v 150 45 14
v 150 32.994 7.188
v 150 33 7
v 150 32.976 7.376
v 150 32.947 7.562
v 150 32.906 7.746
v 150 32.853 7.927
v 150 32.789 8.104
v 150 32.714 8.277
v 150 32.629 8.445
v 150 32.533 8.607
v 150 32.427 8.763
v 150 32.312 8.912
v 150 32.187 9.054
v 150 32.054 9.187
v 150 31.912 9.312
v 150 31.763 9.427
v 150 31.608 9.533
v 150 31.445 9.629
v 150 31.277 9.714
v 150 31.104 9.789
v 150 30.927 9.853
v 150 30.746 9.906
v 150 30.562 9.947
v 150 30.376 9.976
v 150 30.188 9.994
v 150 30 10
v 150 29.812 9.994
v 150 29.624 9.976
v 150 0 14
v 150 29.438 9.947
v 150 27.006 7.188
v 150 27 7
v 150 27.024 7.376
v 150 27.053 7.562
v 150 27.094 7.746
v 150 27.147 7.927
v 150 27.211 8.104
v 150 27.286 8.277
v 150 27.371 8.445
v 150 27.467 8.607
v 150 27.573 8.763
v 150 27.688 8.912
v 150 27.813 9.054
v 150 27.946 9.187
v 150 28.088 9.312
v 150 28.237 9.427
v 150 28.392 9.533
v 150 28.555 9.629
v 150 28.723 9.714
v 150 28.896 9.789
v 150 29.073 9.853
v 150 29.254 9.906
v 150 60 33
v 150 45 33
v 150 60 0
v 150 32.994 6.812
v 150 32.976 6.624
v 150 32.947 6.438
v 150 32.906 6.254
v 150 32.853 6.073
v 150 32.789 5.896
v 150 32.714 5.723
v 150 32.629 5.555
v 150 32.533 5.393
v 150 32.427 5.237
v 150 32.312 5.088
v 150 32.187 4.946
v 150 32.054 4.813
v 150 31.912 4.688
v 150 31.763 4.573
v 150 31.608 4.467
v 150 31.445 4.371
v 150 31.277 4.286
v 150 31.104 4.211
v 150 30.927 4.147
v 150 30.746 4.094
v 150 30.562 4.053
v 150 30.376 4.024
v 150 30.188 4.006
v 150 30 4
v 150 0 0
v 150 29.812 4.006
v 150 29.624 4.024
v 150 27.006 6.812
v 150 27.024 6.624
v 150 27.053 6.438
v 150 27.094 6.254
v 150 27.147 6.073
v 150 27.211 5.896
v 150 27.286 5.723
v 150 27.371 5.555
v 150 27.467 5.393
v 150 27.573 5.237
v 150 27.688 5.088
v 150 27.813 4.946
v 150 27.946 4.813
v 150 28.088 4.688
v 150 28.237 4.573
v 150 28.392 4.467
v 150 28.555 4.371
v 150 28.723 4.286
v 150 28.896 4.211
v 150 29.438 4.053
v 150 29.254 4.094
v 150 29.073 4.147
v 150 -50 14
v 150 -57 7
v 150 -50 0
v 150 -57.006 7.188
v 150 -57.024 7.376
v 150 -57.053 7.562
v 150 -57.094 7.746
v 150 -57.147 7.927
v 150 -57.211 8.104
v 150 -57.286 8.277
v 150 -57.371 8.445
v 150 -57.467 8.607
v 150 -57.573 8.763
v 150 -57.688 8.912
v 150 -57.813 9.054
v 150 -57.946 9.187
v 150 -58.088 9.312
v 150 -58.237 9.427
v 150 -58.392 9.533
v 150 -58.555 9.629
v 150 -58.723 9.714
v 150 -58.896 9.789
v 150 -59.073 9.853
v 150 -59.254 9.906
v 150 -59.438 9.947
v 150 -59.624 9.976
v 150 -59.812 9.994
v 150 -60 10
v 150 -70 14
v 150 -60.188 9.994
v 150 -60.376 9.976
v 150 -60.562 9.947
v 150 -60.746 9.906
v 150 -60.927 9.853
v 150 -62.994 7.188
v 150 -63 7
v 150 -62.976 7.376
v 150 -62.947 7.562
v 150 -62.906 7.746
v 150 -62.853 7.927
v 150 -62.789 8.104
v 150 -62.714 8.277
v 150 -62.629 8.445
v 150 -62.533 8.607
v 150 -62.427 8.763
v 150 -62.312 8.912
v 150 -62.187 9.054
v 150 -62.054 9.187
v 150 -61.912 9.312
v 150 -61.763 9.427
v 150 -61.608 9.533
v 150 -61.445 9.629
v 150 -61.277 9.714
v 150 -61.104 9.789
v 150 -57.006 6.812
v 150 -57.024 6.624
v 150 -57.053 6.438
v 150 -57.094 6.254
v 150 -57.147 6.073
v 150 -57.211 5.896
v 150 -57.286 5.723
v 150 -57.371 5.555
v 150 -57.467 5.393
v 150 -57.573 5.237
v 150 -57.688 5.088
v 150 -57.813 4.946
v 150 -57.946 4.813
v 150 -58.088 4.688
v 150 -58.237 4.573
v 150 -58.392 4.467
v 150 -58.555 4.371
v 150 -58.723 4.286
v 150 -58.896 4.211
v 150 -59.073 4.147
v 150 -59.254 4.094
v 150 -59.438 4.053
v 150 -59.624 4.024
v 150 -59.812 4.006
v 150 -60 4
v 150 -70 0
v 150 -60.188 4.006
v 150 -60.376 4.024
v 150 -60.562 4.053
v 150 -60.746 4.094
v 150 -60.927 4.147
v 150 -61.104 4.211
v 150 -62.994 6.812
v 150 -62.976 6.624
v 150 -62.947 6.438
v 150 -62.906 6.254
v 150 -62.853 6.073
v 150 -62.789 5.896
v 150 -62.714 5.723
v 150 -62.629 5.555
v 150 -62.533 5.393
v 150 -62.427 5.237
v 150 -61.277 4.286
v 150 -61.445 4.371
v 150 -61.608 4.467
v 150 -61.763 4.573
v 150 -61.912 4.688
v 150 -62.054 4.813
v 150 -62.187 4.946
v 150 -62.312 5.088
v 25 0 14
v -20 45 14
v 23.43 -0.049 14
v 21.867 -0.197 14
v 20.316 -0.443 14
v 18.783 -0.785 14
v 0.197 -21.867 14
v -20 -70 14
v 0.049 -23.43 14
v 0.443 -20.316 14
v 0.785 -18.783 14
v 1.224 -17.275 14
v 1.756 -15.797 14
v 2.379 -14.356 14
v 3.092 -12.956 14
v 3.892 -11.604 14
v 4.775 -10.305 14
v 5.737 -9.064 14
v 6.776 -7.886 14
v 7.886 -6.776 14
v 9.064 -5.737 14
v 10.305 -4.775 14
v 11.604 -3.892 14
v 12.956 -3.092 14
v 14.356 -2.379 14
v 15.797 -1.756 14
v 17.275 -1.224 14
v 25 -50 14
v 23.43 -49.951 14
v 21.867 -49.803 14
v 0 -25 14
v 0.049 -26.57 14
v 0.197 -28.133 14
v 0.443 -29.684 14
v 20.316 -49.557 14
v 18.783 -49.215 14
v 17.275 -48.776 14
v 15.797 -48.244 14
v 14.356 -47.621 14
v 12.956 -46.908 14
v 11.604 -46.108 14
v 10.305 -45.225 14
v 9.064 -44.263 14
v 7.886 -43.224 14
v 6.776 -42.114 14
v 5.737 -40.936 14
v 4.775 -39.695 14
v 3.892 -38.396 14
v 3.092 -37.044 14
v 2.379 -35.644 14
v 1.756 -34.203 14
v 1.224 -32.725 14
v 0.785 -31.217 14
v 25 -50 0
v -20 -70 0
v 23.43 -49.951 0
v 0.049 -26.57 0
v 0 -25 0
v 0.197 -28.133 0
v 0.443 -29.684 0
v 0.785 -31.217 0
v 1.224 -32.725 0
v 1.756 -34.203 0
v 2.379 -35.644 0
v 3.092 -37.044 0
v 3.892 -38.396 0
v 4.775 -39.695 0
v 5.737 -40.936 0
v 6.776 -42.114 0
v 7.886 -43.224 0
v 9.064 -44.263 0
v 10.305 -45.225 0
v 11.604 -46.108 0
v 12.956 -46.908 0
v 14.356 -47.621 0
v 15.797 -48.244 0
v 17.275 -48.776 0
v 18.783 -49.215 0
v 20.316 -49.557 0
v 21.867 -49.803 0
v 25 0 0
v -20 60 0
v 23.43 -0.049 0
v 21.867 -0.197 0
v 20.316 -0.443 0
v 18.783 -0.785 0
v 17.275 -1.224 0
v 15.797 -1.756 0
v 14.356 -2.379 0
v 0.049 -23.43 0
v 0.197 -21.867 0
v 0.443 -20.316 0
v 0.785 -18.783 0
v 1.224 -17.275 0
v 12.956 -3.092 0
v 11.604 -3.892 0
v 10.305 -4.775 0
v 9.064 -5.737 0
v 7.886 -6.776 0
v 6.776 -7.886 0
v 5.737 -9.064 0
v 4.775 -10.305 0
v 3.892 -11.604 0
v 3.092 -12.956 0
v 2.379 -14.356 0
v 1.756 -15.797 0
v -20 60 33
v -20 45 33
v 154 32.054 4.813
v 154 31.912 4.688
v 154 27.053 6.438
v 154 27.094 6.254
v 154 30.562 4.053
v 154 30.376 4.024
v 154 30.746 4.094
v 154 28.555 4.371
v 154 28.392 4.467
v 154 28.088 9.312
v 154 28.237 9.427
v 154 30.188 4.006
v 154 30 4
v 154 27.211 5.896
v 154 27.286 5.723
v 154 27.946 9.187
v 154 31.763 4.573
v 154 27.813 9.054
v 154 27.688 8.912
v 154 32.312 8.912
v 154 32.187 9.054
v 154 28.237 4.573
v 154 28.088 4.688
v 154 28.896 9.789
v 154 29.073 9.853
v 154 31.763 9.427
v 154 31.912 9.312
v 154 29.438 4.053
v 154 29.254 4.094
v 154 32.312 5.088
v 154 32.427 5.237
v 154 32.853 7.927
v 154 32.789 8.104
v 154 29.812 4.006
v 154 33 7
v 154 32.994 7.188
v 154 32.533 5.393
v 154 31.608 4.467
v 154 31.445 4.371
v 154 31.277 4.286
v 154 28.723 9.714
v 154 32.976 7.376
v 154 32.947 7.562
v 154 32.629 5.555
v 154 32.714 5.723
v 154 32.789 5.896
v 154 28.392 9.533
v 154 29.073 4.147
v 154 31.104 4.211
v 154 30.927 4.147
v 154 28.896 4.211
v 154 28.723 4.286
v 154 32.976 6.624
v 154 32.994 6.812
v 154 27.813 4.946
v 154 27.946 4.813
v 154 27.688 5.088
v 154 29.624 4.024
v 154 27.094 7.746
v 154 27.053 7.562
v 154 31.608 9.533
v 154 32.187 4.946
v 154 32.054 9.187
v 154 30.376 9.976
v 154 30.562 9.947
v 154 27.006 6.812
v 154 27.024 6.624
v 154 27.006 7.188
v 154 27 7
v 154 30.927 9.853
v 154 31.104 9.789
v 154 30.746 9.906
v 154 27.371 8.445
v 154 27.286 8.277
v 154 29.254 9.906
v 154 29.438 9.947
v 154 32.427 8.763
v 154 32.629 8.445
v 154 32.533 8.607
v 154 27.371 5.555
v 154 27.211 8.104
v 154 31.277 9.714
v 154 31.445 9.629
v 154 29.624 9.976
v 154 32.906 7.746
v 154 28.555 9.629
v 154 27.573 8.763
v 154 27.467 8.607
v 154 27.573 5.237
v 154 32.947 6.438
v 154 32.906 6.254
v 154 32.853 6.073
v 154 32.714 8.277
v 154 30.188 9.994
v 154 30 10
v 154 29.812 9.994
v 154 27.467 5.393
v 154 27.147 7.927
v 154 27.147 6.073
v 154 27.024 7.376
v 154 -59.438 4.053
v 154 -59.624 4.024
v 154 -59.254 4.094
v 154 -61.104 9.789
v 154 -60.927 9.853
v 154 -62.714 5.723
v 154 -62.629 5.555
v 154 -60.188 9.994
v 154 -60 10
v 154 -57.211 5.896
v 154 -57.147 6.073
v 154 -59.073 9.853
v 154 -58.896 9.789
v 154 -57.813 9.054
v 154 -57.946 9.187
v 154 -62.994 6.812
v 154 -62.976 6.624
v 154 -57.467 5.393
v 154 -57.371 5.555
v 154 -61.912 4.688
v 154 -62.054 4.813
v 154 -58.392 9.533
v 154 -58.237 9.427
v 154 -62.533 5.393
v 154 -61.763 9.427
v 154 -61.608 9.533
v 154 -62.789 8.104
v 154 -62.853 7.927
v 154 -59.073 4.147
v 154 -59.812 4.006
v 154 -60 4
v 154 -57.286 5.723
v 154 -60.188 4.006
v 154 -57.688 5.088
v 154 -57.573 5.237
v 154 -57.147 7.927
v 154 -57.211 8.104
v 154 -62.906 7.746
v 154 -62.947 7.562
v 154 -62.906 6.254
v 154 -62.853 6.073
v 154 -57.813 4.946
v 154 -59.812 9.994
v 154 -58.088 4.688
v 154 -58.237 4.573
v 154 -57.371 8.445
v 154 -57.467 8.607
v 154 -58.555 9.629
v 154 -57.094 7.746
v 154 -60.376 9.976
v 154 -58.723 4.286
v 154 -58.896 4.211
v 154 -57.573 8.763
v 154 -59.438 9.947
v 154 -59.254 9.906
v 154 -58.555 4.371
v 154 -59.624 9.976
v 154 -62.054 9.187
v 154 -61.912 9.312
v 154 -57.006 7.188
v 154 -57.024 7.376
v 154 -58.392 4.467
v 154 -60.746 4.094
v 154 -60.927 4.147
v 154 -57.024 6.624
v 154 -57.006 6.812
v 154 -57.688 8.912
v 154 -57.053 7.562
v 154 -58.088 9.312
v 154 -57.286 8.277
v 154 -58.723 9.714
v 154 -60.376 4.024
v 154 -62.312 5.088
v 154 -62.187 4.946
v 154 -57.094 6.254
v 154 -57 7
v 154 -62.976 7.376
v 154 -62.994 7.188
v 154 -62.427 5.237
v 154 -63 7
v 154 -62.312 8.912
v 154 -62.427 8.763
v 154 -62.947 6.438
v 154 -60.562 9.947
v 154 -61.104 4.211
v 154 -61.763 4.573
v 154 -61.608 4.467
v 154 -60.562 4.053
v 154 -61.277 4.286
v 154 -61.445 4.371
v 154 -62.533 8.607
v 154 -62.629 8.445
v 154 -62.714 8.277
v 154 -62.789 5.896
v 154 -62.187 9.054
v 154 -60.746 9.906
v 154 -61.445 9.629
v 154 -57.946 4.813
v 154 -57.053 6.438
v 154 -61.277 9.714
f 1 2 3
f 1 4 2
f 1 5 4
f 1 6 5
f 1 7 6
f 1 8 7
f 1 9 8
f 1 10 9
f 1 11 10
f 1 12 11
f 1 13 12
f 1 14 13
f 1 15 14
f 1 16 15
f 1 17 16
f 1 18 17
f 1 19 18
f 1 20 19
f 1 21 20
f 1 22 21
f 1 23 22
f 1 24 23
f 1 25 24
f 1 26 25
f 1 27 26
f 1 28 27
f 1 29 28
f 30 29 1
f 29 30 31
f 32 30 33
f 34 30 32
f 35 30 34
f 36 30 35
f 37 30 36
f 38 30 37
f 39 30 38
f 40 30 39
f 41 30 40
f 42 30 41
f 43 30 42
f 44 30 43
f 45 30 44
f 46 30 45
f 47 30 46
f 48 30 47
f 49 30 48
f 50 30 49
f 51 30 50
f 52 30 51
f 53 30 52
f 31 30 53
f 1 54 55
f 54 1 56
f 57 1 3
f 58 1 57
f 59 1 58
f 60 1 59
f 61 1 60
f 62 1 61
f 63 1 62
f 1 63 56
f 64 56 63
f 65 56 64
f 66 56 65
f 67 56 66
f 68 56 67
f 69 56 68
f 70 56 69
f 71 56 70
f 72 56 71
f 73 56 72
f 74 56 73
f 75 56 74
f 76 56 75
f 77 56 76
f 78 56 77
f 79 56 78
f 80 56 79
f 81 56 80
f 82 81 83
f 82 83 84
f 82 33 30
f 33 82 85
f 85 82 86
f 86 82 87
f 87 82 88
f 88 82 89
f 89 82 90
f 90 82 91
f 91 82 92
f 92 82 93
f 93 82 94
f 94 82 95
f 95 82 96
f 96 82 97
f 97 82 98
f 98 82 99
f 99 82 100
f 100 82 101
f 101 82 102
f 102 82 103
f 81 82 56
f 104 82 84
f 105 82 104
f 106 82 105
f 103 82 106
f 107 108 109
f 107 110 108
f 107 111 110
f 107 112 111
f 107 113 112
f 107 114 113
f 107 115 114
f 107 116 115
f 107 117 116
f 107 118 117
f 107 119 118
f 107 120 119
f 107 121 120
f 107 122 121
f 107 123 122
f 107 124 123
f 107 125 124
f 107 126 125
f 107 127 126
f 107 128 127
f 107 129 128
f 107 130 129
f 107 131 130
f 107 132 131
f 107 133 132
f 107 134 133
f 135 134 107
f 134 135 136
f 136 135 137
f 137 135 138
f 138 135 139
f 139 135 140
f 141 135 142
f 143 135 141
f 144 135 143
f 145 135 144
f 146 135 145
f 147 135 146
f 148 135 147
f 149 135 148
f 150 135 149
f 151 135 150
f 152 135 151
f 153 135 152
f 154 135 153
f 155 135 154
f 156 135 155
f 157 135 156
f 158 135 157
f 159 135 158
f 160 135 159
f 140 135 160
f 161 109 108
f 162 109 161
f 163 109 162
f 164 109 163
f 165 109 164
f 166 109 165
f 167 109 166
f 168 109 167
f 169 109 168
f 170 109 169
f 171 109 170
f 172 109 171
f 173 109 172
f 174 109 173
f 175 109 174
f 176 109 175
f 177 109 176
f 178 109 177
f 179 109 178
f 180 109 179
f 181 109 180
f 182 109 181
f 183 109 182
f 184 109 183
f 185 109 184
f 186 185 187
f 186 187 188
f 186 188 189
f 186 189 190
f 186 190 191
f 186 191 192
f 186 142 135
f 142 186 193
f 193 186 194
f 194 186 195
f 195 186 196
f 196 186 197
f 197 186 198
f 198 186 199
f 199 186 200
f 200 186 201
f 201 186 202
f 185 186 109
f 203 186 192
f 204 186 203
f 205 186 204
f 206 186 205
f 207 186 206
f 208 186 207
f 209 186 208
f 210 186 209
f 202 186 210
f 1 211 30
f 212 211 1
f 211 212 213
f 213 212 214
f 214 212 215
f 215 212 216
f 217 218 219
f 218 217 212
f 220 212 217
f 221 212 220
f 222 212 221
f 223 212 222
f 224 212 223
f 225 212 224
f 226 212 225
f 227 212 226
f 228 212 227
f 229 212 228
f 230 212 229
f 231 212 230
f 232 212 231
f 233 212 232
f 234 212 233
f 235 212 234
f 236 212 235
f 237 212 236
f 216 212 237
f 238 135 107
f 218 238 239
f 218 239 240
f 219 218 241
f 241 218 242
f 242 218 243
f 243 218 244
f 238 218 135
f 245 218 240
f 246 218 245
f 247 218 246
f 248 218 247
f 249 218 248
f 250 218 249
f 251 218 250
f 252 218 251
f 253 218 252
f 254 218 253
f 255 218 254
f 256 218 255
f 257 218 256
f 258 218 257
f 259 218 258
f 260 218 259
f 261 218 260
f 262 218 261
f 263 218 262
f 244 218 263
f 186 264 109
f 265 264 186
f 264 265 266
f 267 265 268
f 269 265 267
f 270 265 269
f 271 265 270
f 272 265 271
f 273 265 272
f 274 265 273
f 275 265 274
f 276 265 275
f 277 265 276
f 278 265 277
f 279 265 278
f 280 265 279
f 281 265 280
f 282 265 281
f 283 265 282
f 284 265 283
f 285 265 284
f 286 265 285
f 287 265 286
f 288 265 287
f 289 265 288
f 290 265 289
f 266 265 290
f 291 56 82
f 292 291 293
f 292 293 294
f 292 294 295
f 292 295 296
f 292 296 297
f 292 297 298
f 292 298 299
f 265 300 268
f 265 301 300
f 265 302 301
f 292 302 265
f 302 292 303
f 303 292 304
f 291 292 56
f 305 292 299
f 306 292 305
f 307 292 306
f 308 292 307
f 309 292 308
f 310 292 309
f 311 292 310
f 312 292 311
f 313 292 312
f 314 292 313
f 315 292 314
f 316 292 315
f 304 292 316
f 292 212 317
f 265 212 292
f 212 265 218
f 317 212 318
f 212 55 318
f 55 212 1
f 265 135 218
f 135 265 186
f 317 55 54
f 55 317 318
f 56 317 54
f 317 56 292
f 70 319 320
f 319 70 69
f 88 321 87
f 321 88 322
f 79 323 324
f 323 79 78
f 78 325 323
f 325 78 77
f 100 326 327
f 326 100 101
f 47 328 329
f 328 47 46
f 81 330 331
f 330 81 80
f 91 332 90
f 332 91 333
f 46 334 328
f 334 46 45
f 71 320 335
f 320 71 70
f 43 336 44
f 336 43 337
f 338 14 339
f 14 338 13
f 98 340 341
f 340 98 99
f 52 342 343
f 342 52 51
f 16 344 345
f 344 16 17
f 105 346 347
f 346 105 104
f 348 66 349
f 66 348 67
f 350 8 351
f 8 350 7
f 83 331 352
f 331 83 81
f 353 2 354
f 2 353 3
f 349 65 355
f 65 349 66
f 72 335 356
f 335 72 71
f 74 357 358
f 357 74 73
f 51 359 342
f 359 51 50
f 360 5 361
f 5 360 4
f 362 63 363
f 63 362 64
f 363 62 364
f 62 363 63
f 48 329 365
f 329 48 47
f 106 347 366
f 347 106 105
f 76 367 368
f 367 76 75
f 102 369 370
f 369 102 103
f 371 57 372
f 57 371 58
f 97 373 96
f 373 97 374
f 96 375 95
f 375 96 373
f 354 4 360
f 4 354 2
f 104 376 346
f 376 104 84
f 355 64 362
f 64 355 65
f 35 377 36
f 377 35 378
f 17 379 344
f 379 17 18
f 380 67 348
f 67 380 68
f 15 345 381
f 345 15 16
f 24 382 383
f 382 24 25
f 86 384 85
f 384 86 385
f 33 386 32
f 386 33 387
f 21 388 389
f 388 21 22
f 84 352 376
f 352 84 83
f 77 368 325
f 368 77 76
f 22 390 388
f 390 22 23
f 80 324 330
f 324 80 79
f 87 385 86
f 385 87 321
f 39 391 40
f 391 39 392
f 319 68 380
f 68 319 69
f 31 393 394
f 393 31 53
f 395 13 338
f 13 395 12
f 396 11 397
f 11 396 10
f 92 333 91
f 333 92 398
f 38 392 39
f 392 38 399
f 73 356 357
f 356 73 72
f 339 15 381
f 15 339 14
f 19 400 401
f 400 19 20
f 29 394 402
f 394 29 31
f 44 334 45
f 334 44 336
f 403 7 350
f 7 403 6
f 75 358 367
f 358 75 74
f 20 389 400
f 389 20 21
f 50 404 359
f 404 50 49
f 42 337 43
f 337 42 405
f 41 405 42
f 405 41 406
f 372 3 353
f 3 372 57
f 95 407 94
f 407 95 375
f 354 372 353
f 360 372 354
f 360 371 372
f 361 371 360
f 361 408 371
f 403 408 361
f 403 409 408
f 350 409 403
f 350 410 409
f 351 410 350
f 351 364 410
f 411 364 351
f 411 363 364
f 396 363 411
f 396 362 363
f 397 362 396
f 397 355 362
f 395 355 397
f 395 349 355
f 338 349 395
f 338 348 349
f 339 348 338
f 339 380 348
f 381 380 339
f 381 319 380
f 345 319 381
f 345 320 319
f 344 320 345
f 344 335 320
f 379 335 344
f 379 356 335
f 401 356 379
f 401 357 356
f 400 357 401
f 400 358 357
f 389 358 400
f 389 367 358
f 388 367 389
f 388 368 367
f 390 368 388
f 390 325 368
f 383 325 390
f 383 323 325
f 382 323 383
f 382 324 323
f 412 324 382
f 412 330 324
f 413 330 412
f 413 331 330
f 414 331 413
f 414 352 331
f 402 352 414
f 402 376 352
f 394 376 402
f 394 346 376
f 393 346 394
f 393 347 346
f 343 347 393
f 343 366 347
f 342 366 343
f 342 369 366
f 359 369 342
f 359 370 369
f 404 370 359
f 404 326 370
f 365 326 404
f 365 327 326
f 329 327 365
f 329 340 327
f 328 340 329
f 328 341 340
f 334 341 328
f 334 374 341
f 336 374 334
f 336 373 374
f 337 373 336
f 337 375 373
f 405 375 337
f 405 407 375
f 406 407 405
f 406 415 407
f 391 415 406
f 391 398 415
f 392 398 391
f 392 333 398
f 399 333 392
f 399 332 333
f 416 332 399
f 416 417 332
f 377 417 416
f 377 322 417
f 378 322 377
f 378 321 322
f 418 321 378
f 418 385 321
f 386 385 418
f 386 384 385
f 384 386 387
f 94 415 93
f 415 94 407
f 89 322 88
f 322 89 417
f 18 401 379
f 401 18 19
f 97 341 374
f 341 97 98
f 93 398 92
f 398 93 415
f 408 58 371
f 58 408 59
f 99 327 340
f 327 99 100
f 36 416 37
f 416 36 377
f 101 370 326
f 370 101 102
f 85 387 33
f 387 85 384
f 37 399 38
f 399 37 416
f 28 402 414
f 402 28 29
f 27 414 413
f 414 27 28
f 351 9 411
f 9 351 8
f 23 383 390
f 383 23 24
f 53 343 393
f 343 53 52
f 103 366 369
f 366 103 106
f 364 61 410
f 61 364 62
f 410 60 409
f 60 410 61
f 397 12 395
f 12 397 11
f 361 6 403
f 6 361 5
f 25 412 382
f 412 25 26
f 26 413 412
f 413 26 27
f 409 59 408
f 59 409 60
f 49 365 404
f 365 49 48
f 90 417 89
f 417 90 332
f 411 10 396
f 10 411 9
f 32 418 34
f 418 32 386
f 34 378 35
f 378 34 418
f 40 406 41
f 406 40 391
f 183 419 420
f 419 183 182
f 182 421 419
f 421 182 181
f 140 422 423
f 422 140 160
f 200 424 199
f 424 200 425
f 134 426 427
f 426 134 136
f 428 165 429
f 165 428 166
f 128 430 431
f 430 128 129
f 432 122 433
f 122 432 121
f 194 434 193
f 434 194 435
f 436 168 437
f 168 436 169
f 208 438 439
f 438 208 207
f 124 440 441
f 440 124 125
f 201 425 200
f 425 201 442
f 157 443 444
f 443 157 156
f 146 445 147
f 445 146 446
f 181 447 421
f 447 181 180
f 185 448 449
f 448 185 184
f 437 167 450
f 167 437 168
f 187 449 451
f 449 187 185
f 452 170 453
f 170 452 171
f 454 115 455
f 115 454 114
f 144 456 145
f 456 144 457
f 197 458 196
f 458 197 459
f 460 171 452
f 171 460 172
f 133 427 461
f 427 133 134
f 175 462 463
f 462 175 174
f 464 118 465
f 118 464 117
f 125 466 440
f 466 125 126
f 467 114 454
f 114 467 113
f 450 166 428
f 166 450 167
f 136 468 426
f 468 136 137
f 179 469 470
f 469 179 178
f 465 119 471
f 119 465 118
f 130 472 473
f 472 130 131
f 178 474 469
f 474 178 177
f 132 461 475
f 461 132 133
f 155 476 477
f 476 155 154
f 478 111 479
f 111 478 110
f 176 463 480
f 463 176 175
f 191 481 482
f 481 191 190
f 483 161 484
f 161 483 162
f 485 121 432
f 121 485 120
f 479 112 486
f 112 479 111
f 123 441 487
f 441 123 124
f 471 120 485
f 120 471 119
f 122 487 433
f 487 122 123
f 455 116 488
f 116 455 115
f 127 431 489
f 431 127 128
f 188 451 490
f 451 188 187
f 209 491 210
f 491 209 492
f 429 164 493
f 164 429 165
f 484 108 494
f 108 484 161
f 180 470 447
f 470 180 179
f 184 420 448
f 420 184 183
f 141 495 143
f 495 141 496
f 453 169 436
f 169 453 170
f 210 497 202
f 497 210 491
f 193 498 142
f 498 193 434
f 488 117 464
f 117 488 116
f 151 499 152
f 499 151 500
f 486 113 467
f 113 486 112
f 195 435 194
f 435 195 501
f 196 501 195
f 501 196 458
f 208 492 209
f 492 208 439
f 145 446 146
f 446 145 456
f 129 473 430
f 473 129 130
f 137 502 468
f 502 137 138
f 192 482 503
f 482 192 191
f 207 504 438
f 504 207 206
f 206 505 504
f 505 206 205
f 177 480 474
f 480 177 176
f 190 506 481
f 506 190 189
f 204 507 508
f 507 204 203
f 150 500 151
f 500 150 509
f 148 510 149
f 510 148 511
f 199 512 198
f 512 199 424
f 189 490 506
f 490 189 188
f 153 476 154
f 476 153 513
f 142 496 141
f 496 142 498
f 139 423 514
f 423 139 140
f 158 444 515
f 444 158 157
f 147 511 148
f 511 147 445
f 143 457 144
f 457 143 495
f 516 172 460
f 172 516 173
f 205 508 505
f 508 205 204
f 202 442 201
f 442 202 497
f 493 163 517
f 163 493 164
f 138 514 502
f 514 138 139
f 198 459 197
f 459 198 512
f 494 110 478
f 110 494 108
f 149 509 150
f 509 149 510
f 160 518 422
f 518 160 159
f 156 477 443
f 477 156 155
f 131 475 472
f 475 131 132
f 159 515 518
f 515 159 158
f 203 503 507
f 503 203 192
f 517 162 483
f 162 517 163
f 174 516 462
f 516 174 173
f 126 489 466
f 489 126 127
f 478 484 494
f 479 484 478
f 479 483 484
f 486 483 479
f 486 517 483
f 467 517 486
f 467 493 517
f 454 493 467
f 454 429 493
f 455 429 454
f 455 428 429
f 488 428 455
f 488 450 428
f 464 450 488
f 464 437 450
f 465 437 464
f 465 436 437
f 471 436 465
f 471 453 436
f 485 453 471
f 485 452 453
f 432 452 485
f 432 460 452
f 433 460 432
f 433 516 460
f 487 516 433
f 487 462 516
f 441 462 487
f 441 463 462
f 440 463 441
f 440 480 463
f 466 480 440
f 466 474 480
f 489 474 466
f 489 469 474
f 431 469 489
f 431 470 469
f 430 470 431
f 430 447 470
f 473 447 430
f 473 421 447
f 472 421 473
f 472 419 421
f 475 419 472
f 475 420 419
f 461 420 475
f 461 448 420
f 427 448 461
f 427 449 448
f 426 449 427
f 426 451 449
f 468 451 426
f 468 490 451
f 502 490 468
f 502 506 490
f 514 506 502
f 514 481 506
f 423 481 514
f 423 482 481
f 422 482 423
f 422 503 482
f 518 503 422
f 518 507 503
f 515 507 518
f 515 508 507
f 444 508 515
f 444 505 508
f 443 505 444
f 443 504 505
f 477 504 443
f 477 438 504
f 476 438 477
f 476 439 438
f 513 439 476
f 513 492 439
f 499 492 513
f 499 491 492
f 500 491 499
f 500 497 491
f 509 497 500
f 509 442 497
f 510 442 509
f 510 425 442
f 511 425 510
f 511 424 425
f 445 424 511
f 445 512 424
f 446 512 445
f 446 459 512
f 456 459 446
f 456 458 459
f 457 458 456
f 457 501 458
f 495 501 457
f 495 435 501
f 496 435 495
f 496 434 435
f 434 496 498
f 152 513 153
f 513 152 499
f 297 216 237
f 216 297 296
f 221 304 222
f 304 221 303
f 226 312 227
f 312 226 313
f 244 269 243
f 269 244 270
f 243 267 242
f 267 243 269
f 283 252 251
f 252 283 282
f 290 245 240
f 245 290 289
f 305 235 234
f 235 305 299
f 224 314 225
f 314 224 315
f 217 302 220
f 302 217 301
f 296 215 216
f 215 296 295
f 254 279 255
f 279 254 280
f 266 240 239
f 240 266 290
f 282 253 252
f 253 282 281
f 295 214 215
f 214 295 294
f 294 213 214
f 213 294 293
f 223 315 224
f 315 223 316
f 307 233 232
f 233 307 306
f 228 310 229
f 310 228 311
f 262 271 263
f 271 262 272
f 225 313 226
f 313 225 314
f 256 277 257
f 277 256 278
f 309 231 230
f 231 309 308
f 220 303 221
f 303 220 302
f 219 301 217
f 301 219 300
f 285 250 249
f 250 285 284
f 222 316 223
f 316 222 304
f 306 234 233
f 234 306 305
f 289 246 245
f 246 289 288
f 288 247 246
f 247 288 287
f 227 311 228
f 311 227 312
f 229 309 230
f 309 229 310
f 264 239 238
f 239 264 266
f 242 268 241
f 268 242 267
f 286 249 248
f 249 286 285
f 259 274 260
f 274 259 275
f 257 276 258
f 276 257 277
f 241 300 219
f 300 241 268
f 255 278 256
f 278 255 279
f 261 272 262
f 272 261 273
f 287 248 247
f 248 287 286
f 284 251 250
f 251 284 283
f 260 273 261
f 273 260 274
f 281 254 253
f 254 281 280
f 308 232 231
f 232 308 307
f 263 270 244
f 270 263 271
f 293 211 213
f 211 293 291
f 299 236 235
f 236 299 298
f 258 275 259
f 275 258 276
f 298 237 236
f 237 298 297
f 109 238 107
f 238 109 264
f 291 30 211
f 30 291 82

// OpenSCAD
// file: removal-side-holes.scad
/*

    Removal Side Holes
    
    By Anton Augustsson


*/


module removalSideHoles (
    thickness,
    length,
    x,y,z
    ){
/*
    ---------- Local varibles ---------- 
*/

r = 25;
h = thickness+1;
lengthRectangle = length-r*2;


/*
    ---------- Code ---------- 
*/

translate([
    x,
    y+h-1,
    z]) 
rotate([90,0,0])
union () {

translate([
    r,
    r,
    -1
    ])  
cylinder(
    h=h+2,
    r=r
    );

translate([
    r,
    0,
    -1
    ])
cube(size = [
    lengthRectangle,
    r*2,
    h+2
    ]);

translate([
    length-r,
    r,
    -1
    ])  
cylinder(
    h=h+2,
    r=r
    );


}}
    
/*
    ---------- Example ---------- 
*/


standardSheathingWidth = 1220; 
standardSheathingLength = 2440;

mdfTopThickness = 19;
plywoodTopThickness = 12;

// Side protection for ply and mdf
edgeTopThickness = 20; 
edgeTopWidth = 167;
edgeTopLengthX = standardSheathingLength
    +2*edgeTopThickness;
edgeTopLengthY = standardSheathingWidth
    +2*edgeTopThickness;

// 4 list betweend mdf and ply (Pine)
listTopThickness = 20; 
listTopWidth = 80;
listTopLengthX = standardSheathingLength/4
    -listTopThickness;
listTopLengthY = standardSheathingWidth;

// 6 legs (Pine)
legLength = 900
    -plywoodTopThickness
    -mdfTopThickness
    -listTopWidth;
legWidth = 69;
legThickness = 42;

// 3 bottom list (Pine)
listBottomThickness = 20; 
listBottomWidth1 = 60;
listBottomWidth2 = listBottomWidth1
    -plywoodTopThickness;
listBottomLengthX = standardSheathingLength;
listBottomLengthY = standardSheathingWidth;
listBottomLengthY2 = standardSheathingWidth
    +listBottomThickness*2;
bottomHeight = 100;

storageUnitLength=standardSheathingLength/2
    -legThickness*3/2;
storageUnitWidth=400;  
storageUnitHeight=(900-edgeTopWidth)
    -(bottomHeight+listBottomWidth2);
storageUnitThickness=12;


thickness = edgeTopThickness;
length = 300;

x=0;
y=0;
z=0;
yRotate=0;

removalSideHoles (
    thickness,
    length,
    x,y,z
    );
// main file
/*

    Template Removal Side Holes Male
    
    By Anton Augustsson


*/
$fn=100;  // accuracy
use <removal-side-holes.scad>;

/*
    ---------- Local varibles ---------- 
*/

h=14;
positionFromUpperEdge=95;

length=300;
extra=20;
fenceThickness=15; 

widthRemovalSideHoles=50;
edgeTopThickness = 20; 

maleR=3;
maleLength=4;

/*
    ---------- Code ---------- 
*/

difference() { 
union () {
translate([
    -extra,
    -widthRemovalSideHoles
    -extra,
    0
    ])  
cube(size = [
    (length+extra*2)/2,
    positionFromUpperEdge+extra,
    h
    ]);

translate([
    -extra,
    positionFromUpperEdge
    -(widthRemovalSideHoles),
    0
    ])  
cube(size = [
    (length+extra*2)/2,
    fenceThickness,
    h+edgeTopThickness-1
    ]);
    
translate([
    (length)/2,
    30,
    h/2
    ])  
rotate([0,90,0])
cylinder(
    h=maleLength,
    r=maleR
    );

translate([
    (length)/2,
    -60,
    h/2
    ])  
rotate([0,90,0])
cylinder(
    h=maleLength,
    r=maleR
    );

}

rotate([90,0,0])
removalSideHoles (
    edgeTopThickness,
    length,
    0,0,0
    );
}
